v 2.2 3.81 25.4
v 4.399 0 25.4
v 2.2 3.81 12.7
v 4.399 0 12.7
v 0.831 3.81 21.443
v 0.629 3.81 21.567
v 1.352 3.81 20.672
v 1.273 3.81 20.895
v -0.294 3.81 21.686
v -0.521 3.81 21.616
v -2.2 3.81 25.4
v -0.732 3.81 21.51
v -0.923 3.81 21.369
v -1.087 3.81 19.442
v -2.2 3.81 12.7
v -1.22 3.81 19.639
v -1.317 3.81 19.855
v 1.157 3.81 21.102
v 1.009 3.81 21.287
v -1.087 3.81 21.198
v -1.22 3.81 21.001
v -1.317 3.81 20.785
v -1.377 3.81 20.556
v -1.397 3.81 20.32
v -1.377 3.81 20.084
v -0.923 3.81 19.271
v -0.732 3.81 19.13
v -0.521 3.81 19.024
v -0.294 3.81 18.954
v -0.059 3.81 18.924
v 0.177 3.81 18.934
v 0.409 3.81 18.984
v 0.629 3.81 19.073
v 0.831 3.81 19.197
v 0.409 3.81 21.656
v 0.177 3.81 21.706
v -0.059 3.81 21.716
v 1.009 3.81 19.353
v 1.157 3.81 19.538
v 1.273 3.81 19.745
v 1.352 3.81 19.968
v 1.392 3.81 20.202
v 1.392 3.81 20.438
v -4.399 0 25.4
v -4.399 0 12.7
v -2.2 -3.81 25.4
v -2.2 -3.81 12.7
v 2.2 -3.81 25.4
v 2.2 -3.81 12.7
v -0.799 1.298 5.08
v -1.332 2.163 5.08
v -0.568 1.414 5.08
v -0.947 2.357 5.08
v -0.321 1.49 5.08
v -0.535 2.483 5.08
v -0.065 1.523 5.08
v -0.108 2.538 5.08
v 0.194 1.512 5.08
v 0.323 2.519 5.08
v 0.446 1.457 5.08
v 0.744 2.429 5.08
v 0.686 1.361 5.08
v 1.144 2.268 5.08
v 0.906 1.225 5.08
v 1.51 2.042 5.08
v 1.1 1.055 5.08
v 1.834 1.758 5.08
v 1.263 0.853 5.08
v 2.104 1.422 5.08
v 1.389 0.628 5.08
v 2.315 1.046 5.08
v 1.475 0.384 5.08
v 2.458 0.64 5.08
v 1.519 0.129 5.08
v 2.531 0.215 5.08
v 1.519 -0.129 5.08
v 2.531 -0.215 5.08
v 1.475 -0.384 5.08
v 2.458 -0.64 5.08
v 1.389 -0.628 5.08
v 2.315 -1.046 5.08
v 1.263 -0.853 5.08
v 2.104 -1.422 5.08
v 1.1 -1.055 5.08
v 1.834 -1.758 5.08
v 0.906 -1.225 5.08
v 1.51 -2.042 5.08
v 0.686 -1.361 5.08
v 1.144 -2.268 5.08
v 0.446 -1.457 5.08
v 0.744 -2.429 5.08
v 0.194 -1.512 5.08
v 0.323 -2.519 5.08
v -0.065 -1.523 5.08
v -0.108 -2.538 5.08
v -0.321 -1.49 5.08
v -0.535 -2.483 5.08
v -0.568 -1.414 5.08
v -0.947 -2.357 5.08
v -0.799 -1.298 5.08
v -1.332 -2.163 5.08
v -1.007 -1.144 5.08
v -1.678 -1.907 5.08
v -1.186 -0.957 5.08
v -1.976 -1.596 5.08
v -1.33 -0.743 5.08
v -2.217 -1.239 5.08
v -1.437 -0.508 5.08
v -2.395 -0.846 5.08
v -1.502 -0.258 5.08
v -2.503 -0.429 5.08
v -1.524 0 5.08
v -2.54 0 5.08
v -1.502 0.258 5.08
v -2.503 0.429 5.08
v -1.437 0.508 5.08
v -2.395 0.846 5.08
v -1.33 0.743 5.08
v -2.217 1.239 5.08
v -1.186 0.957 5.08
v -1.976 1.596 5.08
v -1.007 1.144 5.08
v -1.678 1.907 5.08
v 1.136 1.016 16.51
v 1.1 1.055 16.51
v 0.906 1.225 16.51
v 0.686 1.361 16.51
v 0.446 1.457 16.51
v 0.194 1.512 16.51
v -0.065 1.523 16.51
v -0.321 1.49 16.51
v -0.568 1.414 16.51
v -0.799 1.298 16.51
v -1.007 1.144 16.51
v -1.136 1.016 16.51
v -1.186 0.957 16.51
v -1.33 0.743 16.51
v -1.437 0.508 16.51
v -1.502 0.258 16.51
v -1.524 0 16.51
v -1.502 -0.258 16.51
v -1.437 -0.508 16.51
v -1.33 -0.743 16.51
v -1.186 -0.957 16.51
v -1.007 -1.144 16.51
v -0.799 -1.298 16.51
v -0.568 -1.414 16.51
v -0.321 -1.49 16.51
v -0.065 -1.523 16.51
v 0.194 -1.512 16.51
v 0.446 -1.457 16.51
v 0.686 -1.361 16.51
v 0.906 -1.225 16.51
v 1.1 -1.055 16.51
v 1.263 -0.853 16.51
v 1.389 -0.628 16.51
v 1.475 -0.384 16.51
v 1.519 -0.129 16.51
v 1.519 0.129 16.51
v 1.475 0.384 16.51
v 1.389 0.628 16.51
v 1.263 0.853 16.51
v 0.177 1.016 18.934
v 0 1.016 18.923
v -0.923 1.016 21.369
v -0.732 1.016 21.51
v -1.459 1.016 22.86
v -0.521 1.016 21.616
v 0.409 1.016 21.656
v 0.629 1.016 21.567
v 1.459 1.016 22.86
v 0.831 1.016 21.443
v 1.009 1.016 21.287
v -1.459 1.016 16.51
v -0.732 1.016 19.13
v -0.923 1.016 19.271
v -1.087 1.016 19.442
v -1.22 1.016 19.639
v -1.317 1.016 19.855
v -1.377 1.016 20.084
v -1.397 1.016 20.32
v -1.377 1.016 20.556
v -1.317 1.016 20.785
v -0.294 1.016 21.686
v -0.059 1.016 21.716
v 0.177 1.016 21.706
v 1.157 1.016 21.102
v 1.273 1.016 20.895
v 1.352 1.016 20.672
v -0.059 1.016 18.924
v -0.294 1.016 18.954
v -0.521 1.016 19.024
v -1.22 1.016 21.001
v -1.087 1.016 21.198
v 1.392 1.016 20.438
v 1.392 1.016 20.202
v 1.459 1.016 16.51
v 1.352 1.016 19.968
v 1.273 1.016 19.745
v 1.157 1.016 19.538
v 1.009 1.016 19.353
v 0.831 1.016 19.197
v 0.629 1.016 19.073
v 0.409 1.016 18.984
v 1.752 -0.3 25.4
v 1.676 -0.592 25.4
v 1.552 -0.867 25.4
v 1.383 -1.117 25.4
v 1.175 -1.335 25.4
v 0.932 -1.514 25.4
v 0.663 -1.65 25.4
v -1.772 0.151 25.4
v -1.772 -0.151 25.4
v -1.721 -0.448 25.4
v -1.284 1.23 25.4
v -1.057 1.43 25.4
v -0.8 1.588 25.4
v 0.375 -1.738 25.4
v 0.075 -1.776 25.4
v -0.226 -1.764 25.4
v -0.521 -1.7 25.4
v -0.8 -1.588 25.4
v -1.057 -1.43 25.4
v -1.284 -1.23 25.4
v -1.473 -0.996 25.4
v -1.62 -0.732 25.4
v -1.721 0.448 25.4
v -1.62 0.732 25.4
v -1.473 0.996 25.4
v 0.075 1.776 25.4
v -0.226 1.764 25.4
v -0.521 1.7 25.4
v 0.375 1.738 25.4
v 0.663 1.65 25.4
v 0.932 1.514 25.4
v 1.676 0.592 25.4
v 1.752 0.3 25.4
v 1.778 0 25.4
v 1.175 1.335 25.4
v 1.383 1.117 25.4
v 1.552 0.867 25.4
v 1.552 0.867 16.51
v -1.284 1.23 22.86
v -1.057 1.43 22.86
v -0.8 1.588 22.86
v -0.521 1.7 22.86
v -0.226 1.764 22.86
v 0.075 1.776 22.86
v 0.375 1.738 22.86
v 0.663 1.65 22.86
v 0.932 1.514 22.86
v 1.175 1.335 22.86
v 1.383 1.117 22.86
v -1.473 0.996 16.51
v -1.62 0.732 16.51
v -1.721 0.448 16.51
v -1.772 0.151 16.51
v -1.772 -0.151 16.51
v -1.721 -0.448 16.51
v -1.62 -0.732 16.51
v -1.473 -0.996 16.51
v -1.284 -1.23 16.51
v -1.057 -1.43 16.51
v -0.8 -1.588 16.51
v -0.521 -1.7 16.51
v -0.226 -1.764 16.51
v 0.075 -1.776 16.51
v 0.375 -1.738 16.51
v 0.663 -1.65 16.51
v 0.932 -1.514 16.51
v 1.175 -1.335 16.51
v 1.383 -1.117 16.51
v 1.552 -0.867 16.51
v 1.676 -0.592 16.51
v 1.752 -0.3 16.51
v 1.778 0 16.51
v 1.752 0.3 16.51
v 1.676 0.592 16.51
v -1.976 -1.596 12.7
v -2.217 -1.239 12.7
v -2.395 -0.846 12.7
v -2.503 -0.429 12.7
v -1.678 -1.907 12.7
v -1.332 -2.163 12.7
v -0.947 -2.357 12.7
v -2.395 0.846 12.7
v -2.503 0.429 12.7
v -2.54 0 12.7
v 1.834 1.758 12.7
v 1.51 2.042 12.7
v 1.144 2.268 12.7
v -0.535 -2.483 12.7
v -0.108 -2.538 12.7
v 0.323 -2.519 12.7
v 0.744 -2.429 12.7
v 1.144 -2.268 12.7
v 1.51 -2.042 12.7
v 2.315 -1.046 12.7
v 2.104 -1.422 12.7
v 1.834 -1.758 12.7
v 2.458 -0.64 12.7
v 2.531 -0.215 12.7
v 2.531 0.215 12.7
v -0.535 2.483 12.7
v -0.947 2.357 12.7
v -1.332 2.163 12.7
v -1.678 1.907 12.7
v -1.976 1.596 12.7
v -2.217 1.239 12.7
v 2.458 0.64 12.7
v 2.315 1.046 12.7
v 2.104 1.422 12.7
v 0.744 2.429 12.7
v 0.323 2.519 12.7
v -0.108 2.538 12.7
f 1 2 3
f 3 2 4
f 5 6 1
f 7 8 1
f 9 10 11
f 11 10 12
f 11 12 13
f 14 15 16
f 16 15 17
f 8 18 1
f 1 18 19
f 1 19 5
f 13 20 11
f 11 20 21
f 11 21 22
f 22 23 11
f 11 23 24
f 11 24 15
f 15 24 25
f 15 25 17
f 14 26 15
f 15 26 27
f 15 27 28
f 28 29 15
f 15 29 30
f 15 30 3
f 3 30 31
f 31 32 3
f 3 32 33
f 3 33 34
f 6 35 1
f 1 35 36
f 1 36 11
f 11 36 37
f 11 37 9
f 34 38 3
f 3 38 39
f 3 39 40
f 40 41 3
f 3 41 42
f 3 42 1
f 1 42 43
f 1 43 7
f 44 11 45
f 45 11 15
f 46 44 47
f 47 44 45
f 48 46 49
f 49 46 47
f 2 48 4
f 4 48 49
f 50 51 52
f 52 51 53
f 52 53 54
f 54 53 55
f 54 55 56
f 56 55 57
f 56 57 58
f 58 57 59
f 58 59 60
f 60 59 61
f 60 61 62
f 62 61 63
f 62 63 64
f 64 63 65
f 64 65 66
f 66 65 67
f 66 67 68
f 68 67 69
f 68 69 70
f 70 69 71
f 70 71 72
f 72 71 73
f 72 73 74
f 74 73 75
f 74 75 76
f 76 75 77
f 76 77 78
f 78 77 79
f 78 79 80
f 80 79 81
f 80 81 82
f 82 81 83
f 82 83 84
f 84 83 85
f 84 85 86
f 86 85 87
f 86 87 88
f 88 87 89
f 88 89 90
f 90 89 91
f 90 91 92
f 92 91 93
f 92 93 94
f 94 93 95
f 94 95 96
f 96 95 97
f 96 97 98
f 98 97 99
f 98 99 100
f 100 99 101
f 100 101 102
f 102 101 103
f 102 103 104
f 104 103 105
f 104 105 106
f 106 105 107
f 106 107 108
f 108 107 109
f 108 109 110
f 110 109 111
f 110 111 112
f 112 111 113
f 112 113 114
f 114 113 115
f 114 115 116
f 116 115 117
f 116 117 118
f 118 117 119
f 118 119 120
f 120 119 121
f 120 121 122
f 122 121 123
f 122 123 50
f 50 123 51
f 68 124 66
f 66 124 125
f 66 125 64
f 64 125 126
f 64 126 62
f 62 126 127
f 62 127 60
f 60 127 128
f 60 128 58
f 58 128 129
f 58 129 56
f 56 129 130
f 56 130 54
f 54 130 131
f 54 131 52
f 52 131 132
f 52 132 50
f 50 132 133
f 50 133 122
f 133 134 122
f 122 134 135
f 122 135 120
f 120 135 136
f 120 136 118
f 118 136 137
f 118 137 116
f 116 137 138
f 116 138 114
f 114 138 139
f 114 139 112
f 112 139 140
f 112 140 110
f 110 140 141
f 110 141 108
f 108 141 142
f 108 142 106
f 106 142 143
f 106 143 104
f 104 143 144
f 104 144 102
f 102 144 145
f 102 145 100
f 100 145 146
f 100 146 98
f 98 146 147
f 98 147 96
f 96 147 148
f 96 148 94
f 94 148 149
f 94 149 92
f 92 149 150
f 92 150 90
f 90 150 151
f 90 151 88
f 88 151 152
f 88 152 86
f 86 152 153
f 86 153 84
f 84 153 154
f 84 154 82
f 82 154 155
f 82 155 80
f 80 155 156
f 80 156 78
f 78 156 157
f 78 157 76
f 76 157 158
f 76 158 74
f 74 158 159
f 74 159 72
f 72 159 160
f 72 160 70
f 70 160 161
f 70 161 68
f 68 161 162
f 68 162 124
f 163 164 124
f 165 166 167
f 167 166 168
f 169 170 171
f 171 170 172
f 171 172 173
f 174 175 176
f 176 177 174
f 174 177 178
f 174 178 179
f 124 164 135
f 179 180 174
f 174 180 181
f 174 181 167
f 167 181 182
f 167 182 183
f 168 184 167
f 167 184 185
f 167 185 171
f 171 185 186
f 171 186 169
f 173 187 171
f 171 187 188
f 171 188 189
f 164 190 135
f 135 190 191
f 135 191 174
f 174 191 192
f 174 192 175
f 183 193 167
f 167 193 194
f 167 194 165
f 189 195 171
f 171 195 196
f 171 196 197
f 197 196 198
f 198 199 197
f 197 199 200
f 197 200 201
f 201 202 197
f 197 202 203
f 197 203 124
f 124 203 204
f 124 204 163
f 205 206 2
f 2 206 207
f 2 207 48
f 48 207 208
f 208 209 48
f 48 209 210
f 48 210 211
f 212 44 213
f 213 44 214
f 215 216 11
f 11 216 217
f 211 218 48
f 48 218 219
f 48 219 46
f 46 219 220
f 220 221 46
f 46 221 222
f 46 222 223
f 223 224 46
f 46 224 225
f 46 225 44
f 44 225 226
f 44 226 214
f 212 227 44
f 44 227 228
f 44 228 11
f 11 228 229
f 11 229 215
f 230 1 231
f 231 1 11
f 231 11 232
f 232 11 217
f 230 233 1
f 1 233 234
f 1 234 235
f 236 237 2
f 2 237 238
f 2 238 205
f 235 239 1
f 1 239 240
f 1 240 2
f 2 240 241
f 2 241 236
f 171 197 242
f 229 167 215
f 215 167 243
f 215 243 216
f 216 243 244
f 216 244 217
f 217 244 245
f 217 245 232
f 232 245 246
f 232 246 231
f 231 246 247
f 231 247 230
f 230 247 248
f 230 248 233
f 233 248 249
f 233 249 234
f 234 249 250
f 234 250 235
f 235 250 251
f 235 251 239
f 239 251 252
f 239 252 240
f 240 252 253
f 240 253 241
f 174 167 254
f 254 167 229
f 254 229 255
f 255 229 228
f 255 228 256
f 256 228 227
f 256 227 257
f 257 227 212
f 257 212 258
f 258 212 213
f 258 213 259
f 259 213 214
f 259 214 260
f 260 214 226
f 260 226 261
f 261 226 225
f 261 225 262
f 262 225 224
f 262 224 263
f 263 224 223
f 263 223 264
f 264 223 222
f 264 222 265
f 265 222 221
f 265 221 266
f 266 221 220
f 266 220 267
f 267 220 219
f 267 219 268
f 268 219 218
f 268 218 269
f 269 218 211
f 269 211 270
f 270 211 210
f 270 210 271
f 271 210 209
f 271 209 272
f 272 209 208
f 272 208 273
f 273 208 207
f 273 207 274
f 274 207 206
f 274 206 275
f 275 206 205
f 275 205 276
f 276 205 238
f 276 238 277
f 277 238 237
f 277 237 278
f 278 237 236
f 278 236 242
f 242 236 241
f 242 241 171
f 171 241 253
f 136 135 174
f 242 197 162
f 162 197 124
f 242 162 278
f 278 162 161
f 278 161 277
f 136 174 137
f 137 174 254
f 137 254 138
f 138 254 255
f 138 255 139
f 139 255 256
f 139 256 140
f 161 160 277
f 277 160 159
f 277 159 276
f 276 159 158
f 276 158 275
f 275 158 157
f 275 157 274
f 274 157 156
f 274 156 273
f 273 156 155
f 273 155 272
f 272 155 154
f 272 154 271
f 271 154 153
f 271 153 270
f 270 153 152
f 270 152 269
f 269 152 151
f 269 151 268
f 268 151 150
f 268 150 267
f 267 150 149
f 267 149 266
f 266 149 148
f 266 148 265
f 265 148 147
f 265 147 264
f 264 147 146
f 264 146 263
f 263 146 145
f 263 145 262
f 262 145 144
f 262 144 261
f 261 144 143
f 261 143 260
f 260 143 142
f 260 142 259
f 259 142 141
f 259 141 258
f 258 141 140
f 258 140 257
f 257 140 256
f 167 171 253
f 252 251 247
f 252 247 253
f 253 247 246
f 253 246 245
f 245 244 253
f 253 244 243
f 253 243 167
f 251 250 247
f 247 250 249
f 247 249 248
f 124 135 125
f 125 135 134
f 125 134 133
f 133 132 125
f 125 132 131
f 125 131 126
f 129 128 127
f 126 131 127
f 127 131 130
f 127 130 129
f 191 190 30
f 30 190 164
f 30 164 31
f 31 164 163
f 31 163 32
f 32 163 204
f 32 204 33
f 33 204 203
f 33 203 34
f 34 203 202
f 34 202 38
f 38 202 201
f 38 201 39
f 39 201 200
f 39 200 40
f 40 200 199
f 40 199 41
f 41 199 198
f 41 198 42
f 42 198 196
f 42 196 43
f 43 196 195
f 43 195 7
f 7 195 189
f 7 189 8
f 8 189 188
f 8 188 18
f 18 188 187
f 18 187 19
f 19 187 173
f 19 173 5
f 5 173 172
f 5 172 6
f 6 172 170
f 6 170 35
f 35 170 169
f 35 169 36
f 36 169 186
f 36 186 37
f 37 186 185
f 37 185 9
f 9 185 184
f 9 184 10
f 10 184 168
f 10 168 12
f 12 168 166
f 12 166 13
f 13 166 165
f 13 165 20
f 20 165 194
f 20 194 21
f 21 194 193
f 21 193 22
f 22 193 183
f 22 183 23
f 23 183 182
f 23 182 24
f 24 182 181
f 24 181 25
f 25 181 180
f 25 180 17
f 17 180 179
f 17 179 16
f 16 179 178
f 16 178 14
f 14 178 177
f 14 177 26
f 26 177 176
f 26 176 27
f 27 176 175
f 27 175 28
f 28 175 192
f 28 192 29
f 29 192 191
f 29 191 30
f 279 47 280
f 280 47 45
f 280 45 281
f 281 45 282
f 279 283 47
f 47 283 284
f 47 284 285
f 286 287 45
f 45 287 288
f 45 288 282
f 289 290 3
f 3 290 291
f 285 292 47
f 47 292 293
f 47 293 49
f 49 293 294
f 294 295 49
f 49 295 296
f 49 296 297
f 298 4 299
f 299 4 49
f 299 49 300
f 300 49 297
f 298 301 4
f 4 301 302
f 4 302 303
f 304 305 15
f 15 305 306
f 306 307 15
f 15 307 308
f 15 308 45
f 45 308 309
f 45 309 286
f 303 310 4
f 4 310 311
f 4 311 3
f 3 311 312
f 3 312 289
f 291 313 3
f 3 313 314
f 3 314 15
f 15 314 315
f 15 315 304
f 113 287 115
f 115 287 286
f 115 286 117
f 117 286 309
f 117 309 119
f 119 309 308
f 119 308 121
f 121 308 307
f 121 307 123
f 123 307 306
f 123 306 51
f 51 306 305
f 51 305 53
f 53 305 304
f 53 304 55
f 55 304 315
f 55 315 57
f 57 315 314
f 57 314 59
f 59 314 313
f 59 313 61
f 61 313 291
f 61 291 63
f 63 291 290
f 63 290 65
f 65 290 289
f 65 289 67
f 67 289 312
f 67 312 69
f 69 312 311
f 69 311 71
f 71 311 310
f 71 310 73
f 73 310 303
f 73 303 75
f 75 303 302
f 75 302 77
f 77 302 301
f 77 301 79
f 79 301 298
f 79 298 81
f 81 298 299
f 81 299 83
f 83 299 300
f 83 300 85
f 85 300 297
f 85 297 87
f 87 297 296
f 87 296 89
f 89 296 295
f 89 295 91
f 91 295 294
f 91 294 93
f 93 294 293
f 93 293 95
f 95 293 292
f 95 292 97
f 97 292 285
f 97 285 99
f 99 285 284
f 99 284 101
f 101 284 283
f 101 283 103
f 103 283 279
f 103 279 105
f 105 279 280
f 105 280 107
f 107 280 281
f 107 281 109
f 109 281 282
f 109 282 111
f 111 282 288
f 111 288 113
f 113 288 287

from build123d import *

# Parameters (mm, degrees)
BOSS_EXTRUDE1_DEPTH = 25.4
CUT_EXTRUDE1_DEPTH  = 8.89
SKETCH2_3_R         = 1.778
CUT_EXTRUDE2_DEPTH  = 2.54
SKETCH6_R           = 1.524
CUT_EXTRUDE3_DEPTH  = 16.51
SKETCH7_R           = 1.397
CUT_EXTRUDE4_DEPTH  = 3.81
SKETCH8_W           = 12.797374265
SKETCH8_H           = 12.133936035
CUT_EXTRUDE5_DEPTH  = 5.08
SKETCH9_R           = 5.447820482
SKETCH9_R_2         = 2.54
CUT_EXTRUDE6_DEPTH  = 7.62


with BuildPart() as part:
    # Sketch1 → Boss-Extrude1 (new body)
    with BuildSketch(Plane.XY):
        Polygon((2.199704526, 3.81), (-2.199704526, 3.81), (-4.399409051, 0), (-2.199704526, -3.81), (2.199704526, -3.81), (4.399409051, 0), align=None)
    extrude(amount=BOSS_EXTRUDE1_DEPTH)

    # Sketch2 → Cut-Extrude1 (cut)
    with BuildSketch(Plane.XY.offset(25.4)):
        with BuildLine():
            Line((1.459118912, 1.016), (-1.459118912, 1.016))
            ThreePointArc((-1.459118912, 1.016), (-0.532433364, -1.69640759), (1.778, 0))
            ThreePointArc((1.778, 0), (1.69640759, 0.532433364), (1.459118912, 1.016))
        make_face()
    extrude(amount=-CUT_EXTRUDE1_DEPTH, mode=Mode.SUBTRACT)

    # Sketch2<3> → Cut-Extrude2 (cut)
    with BuildSketch(Plane.XY.offset(25.4)):
        Circle(SKETCH2_3_R)
    extrude(amount=-CUT_EXTRUDE2_DEPTH, mode=Mode.SUBTRACT)

    # Sketch6 → Cut-Extrude3 (cut)
    with BuildSketch(Plane(origin=(0, 0, 0), x_dir=(-1, 0, 0), z_dir=(0, 0, -1))):
        Circle(SKETCH6_R)
    extrude(amount=-CUT_EXTRUDE3_DEPTH, mode=Mode.SUBTRACT)

    # Sketch7 → Cut-Extrude4 (cut)
    with BuildSketch(Plane(origin=(0, 3.81, 0), x_dir=(1, 0, 0), z_dir=(0, 1, 0))):
        with Locations((0, -20.32)):
            Circle(SKETCH7_R)
    extrude(amount=-CUT_EXTRUDE4_DEPTH, mode=Mode.SUBTRACT)

    # Sketch8 → Cut-Extrude5 (cut)
    with BuildSketch(Plane(origin=(0, 0, 0), x_dir=(-1, 0, 0), z_dir=(0, 0, -1))):
        with Locations((-0.392825268, 0.110181057)):
            Rectangle(SKETCH8_W, SKETCH8_H)
    extrude(amount=-CUT_EXTRUDE5_DEPTH, mode=Mode.SUBTRACT)

    # Sketch9 → Cut-Extrude6 (cut)
    with BuildSketch(Plane(origin=(0, 0, 5.08), x_dir=(-1, 0, 0), z_dir=(0, 0, -1))):
        Circle(SKETCH9_R)
        Circle(SKETCH9_R_2, mode=Mode.SUBTRACT)
    extrude(amount=-CUT_EXTRUDE6_DEPTH, mode=Mode.SUBTRACT)


solid = part.part
